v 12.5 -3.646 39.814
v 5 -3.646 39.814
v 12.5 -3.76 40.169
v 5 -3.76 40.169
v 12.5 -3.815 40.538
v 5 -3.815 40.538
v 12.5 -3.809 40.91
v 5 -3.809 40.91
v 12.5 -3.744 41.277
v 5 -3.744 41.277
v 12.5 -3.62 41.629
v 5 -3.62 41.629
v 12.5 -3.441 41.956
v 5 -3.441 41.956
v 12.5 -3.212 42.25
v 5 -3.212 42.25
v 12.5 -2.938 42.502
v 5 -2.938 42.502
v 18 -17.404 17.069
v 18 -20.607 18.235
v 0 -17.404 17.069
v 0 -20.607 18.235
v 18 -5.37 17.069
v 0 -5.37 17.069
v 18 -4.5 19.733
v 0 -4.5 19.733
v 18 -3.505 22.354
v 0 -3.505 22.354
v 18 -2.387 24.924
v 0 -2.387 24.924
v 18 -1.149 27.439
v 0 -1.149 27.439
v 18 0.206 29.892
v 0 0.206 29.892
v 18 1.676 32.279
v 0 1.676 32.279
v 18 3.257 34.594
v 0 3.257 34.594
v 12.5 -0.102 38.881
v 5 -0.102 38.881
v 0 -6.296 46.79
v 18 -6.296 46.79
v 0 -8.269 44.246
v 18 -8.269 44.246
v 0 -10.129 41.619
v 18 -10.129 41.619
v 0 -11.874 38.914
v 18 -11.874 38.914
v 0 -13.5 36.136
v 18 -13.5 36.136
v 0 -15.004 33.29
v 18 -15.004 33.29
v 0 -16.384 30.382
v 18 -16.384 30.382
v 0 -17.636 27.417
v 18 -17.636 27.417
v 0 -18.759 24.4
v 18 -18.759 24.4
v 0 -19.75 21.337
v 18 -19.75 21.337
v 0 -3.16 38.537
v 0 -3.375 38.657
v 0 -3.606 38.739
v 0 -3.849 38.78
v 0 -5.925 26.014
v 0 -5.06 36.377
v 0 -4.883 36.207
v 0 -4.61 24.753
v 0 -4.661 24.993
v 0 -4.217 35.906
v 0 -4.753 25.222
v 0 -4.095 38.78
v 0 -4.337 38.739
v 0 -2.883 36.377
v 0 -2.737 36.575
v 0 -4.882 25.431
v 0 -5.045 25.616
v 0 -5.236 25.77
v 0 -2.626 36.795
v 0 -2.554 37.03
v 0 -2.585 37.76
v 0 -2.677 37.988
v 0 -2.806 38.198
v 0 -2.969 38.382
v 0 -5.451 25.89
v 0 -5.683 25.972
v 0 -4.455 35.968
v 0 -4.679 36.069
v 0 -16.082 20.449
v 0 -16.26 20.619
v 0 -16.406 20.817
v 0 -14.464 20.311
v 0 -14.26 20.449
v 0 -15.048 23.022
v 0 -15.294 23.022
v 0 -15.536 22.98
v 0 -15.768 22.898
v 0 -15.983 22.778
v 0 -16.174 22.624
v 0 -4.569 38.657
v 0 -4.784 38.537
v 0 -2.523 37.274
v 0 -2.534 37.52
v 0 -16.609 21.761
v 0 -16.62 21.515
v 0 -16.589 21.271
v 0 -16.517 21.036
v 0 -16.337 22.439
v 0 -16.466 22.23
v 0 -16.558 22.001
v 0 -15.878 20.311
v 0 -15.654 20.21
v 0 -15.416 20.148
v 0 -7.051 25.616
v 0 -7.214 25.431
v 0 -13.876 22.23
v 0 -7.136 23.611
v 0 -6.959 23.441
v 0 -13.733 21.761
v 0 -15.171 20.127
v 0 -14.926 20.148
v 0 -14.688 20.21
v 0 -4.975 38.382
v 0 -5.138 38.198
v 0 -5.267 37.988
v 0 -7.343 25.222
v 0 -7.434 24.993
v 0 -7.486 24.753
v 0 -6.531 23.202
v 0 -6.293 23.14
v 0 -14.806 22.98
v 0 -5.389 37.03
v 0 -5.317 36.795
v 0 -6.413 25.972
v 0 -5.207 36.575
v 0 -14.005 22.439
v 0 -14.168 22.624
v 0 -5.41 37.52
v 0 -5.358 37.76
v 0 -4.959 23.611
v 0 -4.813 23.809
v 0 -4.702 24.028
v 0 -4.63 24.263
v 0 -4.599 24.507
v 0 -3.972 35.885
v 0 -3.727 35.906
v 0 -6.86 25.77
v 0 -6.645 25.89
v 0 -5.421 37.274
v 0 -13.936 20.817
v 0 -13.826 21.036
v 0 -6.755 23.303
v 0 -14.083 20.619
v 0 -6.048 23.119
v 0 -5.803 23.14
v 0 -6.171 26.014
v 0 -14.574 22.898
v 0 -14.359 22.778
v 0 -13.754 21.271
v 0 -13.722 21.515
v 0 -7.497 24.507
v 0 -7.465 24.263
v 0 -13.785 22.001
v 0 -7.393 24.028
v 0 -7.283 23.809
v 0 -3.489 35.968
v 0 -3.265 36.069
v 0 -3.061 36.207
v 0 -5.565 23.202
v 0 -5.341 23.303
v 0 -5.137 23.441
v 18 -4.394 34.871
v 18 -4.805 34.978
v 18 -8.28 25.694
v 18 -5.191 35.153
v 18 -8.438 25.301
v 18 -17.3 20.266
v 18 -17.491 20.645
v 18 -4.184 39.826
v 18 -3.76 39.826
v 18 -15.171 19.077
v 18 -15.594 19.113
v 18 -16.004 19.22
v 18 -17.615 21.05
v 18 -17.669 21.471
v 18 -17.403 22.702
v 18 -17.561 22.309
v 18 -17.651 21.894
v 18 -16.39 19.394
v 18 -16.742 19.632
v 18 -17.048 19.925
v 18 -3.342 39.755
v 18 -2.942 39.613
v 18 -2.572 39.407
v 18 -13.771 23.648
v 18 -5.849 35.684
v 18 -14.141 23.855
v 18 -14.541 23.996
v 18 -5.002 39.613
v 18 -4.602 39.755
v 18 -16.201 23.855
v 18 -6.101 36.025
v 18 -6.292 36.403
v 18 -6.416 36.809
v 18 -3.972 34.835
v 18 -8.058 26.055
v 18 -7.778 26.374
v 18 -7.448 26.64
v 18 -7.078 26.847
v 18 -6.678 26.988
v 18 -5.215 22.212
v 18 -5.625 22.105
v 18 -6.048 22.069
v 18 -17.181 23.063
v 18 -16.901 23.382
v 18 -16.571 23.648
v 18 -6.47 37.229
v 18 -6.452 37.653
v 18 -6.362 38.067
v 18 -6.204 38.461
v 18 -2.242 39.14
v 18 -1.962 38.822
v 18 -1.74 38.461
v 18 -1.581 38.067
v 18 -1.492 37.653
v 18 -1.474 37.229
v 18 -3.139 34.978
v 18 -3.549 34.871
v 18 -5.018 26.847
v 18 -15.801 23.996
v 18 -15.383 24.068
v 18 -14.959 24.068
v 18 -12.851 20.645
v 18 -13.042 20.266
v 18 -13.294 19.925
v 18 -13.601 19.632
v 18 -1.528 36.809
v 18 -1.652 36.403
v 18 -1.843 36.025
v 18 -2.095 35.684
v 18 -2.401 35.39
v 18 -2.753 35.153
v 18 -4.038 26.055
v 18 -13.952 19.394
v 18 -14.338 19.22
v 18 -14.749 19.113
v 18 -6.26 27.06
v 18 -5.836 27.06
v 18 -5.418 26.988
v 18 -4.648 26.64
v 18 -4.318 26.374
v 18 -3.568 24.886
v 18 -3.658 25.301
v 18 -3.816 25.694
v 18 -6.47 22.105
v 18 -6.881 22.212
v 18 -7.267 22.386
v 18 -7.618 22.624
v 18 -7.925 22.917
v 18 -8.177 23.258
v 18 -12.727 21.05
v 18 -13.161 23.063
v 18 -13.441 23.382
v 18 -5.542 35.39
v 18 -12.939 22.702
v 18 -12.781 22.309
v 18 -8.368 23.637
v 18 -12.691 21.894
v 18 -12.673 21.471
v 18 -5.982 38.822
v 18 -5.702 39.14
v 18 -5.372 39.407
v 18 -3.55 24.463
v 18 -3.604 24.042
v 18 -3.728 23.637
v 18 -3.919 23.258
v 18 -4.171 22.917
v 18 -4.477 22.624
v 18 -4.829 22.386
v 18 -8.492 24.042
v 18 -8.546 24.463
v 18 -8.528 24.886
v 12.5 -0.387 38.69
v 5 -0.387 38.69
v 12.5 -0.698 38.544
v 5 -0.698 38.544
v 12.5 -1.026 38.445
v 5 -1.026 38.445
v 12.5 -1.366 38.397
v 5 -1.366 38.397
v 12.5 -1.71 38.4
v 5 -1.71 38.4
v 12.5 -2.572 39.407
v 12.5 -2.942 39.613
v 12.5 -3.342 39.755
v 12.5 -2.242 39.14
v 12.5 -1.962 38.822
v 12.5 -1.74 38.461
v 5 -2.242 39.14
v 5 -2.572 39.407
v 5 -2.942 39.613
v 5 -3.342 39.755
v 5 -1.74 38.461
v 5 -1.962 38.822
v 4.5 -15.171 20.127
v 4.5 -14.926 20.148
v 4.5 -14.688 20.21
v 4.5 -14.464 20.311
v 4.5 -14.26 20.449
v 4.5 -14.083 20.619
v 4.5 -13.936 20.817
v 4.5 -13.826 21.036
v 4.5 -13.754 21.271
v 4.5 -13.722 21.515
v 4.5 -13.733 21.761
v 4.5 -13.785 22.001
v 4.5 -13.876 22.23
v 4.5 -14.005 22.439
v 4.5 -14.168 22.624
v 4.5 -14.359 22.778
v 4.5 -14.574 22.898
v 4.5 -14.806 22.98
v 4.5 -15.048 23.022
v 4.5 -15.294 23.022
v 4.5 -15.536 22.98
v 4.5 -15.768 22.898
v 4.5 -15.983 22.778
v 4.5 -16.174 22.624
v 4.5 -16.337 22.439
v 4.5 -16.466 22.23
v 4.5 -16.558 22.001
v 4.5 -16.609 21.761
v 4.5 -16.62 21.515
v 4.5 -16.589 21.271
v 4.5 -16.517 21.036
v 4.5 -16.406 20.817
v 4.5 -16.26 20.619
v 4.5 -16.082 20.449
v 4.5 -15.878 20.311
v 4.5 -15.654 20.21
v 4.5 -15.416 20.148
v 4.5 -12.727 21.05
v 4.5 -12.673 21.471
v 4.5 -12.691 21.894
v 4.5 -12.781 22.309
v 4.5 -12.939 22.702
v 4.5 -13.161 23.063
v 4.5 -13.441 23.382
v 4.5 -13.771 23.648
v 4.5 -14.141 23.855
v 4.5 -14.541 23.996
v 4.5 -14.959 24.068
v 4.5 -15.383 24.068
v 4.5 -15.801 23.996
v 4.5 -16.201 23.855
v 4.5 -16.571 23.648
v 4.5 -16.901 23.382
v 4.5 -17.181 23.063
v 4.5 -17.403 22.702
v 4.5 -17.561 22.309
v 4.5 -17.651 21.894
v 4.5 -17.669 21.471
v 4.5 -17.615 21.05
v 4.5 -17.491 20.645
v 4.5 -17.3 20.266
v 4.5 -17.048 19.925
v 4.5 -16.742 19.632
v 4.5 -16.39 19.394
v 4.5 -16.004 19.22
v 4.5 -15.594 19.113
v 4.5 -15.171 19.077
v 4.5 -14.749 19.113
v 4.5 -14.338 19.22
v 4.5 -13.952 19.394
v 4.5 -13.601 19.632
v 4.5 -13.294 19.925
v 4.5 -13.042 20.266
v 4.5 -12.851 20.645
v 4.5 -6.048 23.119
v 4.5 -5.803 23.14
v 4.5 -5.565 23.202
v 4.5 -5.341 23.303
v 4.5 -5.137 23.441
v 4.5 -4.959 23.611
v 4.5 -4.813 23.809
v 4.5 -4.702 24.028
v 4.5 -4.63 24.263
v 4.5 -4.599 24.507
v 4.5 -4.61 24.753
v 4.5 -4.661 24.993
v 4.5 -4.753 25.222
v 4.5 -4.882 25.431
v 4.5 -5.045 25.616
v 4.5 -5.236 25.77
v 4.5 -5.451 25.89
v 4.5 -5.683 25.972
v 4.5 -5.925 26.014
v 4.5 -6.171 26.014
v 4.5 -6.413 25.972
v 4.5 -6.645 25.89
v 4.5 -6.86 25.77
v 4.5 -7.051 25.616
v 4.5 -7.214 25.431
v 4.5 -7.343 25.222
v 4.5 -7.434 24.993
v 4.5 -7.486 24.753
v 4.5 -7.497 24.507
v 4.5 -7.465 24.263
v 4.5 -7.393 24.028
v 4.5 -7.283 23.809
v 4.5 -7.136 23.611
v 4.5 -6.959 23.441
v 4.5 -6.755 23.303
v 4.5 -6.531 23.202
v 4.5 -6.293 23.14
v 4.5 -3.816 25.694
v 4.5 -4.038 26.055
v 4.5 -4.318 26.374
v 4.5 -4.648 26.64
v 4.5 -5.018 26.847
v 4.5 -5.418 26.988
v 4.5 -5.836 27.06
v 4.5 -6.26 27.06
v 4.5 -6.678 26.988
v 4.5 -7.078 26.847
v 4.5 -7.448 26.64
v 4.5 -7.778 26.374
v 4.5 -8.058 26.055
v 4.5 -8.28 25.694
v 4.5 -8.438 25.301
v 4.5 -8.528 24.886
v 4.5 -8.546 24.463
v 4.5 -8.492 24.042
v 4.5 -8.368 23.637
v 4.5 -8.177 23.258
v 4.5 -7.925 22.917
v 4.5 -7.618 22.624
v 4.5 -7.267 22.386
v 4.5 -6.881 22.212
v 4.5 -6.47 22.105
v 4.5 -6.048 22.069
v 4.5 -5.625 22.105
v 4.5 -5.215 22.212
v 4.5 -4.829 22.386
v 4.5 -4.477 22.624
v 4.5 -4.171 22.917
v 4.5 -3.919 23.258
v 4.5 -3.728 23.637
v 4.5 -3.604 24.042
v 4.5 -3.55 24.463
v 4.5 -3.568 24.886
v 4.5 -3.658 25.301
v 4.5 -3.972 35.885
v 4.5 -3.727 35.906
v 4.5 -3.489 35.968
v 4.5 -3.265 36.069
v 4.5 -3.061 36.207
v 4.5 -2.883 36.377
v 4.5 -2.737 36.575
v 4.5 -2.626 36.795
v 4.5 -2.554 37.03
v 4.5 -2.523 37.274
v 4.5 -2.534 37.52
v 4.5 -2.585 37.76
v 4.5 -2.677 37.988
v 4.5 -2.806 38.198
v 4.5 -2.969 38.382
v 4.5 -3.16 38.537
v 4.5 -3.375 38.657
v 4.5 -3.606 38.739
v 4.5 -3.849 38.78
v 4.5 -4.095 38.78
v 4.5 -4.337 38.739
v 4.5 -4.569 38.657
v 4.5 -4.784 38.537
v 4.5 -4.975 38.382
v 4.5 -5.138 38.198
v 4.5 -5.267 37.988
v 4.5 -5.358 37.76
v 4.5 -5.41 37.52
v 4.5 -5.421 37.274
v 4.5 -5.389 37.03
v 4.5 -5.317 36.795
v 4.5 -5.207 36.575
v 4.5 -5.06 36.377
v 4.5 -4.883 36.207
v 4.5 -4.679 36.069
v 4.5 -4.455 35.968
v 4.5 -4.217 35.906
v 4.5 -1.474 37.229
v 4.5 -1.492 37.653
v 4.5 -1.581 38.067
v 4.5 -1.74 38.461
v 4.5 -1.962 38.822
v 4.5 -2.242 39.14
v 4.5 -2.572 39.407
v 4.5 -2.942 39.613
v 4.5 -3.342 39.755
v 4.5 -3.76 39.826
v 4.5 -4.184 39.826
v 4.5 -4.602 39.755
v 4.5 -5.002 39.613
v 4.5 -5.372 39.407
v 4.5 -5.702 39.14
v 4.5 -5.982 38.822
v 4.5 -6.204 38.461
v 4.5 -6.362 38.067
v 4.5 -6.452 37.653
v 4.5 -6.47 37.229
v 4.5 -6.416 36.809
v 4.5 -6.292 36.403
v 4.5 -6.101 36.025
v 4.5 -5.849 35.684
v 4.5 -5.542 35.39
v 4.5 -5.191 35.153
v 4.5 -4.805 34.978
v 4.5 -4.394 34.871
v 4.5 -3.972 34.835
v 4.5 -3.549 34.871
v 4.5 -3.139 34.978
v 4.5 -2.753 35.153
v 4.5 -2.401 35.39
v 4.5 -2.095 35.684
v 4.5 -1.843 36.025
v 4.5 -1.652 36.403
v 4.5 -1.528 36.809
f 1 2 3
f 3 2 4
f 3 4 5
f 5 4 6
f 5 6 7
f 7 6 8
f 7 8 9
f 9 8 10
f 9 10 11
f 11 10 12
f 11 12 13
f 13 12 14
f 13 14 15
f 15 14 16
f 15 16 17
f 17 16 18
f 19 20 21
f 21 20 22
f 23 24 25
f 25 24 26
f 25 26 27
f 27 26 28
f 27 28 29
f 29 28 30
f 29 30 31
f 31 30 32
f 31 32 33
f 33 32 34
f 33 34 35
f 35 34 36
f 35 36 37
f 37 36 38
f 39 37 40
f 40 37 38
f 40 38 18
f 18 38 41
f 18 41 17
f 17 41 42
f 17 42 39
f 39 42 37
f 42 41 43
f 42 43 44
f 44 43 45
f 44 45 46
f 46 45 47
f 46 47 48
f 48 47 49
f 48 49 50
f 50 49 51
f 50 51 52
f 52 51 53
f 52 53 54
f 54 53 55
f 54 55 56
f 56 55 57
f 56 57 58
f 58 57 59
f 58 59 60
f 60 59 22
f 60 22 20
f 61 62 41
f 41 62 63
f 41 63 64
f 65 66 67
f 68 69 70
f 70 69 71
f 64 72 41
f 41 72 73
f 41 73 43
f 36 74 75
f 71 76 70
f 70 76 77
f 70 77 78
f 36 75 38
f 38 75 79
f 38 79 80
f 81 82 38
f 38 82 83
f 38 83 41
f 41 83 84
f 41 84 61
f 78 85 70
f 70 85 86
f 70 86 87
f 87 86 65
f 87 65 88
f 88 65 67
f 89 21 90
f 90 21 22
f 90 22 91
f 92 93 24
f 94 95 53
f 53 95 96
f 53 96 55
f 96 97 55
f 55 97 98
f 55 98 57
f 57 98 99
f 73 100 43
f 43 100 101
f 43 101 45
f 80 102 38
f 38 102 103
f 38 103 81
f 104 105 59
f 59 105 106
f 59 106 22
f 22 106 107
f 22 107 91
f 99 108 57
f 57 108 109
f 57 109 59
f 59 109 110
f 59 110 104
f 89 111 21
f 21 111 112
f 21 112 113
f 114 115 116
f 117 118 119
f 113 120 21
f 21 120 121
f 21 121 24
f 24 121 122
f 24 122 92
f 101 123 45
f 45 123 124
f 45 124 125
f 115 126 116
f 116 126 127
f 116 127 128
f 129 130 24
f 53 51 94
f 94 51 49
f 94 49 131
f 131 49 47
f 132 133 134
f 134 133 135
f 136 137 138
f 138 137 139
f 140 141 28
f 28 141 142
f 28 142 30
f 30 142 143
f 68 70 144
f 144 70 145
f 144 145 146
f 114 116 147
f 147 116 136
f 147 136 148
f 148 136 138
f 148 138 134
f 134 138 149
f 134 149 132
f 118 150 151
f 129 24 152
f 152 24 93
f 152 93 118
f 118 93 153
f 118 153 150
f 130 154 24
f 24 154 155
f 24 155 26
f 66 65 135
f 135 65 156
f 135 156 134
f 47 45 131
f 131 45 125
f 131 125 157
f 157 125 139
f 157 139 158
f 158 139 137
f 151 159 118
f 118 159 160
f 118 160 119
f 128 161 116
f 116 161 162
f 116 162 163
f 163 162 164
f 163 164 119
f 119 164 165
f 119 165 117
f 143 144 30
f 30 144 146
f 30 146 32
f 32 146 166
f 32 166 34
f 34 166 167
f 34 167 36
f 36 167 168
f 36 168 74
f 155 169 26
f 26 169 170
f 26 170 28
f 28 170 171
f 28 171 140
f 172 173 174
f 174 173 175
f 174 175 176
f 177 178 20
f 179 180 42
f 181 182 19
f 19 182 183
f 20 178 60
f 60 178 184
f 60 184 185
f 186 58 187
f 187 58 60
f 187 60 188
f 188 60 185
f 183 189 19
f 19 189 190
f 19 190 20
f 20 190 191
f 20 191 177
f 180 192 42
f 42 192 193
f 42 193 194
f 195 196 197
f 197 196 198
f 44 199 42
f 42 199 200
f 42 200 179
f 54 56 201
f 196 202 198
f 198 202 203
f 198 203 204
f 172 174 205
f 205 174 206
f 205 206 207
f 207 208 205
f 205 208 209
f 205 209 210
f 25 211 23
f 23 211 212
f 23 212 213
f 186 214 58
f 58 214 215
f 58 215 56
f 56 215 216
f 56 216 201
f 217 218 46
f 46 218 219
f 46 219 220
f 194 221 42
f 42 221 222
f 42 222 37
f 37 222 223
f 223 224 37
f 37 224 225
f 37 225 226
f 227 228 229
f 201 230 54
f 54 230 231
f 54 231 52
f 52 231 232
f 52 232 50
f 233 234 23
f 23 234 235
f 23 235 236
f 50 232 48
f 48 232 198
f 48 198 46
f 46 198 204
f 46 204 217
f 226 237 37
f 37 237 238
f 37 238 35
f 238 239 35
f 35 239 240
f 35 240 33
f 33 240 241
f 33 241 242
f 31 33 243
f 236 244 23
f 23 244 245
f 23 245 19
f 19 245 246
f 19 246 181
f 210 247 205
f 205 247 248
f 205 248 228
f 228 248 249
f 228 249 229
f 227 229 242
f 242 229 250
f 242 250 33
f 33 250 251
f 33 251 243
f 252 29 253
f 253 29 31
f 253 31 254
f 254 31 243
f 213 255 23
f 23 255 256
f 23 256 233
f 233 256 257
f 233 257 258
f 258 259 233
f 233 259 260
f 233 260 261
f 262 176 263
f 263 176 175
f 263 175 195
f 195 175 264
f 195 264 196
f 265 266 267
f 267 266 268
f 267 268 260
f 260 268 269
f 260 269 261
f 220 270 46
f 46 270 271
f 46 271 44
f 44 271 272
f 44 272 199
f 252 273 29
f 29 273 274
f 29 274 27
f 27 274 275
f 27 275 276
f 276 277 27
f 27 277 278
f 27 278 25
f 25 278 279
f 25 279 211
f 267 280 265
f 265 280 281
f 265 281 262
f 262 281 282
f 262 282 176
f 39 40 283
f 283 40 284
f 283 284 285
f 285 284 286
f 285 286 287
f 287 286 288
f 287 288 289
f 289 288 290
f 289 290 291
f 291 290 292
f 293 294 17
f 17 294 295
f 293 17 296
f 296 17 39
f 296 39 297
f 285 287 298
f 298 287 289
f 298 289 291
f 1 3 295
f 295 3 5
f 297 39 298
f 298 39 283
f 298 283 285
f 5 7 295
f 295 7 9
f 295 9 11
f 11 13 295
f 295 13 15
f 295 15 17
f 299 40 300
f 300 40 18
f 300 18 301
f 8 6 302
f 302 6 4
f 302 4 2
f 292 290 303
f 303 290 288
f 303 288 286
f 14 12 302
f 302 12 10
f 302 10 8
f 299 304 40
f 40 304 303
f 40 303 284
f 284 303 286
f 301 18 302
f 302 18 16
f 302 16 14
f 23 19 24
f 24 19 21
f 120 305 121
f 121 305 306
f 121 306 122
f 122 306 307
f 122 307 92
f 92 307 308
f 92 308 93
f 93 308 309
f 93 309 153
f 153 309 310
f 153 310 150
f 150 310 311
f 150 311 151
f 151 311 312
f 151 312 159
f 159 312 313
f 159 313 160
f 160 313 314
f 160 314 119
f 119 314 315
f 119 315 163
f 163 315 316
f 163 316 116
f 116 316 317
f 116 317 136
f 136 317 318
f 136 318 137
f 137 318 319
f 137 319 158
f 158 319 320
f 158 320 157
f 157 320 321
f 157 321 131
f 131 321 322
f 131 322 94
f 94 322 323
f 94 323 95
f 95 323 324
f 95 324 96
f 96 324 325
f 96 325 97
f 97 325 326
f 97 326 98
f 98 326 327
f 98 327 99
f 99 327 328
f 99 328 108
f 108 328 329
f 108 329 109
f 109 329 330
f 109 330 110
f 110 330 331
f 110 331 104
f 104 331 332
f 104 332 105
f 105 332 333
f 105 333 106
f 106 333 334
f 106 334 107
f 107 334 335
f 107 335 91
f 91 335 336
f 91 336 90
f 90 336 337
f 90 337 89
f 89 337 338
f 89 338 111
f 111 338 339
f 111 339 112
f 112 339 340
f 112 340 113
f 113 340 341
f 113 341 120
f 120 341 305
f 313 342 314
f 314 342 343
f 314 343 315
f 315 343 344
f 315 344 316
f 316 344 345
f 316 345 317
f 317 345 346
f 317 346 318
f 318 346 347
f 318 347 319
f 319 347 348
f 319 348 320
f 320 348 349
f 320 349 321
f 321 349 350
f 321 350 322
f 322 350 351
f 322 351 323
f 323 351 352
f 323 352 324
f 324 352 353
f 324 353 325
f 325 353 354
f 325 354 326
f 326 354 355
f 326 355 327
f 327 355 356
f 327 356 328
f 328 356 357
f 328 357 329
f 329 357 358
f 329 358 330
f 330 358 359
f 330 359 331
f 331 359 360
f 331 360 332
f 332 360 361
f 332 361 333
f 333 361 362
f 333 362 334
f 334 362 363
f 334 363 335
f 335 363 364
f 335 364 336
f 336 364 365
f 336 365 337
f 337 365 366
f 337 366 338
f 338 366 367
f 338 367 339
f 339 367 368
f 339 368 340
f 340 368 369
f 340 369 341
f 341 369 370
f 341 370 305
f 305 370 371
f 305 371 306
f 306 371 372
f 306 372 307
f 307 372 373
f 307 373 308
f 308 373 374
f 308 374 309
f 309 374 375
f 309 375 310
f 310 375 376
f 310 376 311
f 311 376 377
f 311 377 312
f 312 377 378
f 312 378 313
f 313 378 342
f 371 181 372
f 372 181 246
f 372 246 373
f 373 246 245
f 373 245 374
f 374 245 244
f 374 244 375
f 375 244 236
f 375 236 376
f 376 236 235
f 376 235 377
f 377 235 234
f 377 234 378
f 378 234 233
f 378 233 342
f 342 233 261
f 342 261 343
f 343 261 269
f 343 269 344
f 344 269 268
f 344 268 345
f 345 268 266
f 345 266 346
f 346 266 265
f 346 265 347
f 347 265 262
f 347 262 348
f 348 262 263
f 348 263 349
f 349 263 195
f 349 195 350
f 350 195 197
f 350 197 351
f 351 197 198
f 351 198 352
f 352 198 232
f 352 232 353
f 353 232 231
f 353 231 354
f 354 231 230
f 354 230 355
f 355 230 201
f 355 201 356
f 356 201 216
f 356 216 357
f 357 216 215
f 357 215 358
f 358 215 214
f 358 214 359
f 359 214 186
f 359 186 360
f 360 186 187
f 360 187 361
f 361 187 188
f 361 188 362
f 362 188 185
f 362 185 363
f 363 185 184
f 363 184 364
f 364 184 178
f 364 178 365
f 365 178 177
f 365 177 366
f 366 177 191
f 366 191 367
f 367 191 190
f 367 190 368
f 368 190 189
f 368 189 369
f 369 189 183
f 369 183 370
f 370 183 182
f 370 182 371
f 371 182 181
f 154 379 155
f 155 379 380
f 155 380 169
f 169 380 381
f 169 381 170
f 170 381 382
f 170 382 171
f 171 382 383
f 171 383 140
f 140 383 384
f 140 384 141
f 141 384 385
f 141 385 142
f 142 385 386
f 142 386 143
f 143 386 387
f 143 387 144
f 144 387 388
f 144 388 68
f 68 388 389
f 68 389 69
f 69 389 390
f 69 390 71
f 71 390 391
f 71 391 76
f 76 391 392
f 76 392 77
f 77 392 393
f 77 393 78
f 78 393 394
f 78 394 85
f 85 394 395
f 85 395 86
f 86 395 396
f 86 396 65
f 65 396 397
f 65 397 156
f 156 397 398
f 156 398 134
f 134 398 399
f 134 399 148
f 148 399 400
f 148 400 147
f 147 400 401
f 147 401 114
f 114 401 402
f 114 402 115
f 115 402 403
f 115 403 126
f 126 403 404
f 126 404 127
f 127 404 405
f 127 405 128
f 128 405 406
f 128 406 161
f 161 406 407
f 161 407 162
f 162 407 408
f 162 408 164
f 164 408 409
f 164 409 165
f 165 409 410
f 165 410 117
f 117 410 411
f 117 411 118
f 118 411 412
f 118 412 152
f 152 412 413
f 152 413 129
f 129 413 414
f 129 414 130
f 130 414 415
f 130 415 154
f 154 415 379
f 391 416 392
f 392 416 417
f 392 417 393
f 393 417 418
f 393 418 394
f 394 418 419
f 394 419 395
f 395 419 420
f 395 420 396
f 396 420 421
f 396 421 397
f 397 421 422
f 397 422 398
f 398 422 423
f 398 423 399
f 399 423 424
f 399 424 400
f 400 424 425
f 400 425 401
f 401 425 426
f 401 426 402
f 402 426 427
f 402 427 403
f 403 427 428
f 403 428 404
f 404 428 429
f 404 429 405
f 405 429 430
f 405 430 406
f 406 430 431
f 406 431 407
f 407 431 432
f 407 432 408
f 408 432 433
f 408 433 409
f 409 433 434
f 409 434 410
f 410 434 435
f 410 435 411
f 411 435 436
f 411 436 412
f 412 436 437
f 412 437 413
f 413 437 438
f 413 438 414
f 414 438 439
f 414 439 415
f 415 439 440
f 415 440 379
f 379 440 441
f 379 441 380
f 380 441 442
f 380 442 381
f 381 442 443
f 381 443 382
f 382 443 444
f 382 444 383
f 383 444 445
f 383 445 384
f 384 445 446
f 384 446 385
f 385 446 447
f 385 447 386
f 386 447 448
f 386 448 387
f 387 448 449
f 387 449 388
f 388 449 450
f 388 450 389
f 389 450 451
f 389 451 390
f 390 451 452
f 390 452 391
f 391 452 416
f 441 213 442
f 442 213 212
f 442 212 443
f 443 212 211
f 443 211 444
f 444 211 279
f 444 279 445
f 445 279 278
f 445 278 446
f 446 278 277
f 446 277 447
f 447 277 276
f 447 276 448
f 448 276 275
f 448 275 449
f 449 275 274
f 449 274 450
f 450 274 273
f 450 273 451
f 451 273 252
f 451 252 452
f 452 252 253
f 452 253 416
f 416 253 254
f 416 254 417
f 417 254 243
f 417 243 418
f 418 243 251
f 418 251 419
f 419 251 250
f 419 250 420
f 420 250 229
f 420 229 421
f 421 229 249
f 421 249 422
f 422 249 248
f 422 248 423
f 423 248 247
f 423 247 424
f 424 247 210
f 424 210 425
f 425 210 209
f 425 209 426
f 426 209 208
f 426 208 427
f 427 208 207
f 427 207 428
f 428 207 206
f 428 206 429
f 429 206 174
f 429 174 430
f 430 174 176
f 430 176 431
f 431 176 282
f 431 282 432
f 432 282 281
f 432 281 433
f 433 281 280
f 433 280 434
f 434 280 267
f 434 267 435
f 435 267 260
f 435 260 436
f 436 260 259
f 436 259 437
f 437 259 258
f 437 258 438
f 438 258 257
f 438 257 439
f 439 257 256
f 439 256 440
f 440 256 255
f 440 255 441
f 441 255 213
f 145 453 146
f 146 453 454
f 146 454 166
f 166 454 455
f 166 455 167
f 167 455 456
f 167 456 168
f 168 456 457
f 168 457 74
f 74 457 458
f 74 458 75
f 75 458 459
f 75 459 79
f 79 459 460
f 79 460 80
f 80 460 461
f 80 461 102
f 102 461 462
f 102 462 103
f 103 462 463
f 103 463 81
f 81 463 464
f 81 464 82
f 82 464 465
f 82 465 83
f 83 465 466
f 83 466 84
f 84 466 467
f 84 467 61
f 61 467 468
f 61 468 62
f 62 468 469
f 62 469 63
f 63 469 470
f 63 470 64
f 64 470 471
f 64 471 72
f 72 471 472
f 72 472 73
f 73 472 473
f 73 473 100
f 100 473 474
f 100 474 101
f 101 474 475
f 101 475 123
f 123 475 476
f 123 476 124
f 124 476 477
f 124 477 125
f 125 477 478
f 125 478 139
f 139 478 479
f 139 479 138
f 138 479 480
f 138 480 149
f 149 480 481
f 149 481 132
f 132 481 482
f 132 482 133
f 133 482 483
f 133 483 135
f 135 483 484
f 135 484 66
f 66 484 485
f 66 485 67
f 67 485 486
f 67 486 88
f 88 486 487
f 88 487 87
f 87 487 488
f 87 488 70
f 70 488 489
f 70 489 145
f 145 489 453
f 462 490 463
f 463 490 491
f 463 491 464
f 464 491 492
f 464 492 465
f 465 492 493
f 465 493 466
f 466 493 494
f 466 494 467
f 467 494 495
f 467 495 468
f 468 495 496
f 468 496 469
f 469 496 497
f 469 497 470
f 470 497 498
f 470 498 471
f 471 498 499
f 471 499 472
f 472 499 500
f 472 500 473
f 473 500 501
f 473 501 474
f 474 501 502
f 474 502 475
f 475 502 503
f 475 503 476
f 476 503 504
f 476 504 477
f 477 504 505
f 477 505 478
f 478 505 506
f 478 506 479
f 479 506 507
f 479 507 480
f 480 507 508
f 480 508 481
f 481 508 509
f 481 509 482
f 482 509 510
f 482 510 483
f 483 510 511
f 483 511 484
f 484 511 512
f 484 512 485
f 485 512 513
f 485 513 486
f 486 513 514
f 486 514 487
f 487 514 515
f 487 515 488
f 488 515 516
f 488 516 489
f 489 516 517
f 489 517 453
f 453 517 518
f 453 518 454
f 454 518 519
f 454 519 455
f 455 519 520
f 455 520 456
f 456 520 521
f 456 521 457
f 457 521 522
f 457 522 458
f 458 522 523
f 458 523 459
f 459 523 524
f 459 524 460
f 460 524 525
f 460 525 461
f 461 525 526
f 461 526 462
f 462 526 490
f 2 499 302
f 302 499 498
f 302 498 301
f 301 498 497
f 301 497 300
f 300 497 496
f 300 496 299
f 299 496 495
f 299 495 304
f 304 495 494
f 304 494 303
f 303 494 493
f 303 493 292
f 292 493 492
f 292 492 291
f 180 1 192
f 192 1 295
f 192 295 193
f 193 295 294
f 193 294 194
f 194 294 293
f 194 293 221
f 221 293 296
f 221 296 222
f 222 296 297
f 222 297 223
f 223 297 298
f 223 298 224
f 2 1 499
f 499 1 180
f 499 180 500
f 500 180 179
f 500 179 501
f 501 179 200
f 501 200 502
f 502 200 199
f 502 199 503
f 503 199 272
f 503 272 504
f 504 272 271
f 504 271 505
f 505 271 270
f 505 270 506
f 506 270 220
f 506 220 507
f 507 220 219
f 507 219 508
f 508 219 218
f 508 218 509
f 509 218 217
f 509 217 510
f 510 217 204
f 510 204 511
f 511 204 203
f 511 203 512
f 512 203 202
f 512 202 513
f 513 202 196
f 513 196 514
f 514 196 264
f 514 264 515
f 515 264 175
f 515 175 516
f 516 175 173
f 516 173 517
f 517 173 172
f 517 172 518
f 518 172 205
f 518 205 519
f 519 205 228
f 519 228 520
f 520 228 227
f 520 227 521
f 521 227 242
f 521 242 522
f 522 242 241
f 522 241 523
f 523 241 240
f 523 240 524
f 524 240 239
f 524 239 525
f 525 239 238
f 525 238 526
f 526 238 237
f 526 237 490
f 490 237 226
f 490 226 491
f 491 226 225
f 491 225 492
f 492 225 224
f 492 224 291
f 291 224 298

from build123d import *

# Parameters (mm, degrees)
BOSS_EXTRUDE1_DEPTH              = 5
BOSS_EXTRUDE2_DEPTH              = 13
CUT_EXTRUDE1_START               = -13
SKETCH3_R                        = 2.3
CUT_EXTRUDE1_DEPTH               = 7.5
CUT_EXTRUDE2_DEPTH               = 57.683541142
CUT_EXTRUDE2_DEPTH_BACK          = 57.683541142
CBORE_FOR_M2_5_SHCS1_D           = 2.9
CBORE_FOR_M2_5_SHCS1_CBORE_D     = 5
CBORE_FOR_M2_5_SHCS1_CBORE_DEPTH = 13.5


with BuildPart() as part:
    # Sketch1 → Boss-Extrude1 (new body)
    with BuildSketch(Plane(origin=(0, 0, 0), x_dir=(0, 0, -1), z_dir=(1, 0, 0))):
        with BuildLine():
            Line((-34.593659354, 3.256520294), (-46.7897518, -6.296129983))
            ThreePointArc((-46.7897518, -6.296129983), (-33.290290023, -15.004245976), (-18.234604608, -20.60719958))
            Line((-18.234604608, -20.60719958), (-2.973495544, 21.32235297))
            Line((-2.973495544, 21.32235297), (-17.068884855, 26.45265512))
            Line((-17.068884855, 26.45265512), (-27.166620772, -1.290646299))
            ThreePointArc((-27.166620772, -1.290646299), (-30.963724442, 0.846415848), (-34.593659354, 3.256520294))
        make_face()
    extrude(amount=BOSS_EXTRUDE1_DEPTH)

    # Sketch2 → Boss-Extrude2 (add)
    with BuildSketch(Plane(origin=(5, 0, 0), x_dir=(0, 0, -1), z_dir=(1, 0, 0))):
        with BuildLine():
            Line((-34.593659354, 3.256520294), (-46.7897518, -6.296129983))
            ThreePointArc((-46.7897518, -6.296129983), (-42.613802597, -9.444548196), (-38.226724688, -12.291412509))
            Line((-38.226724688, -12.291412509), (-25.335917908, -2.194623762))
            ThreePointArc((-25.335917908, -2.194623762), (-26.255160174, -1.750514609), (-27.166620772, -1.290646299))
            ThreePointArc((-27.166620772, -1.290646299), (-30.963724442, 0.846415848), (-34.593659354, 3.256520294))
        make_face()
        with BuildLine():
            Line((-25.335917908, -2.194623762), (-38.226724688, -12.291412509))
            ThreePointArc((-38.226724688, -12.291412509), (-28.535215176, -17.181480963), (-18.234604608, -20.60719958))
            Line((-18.234604608, -20.60719958), (-12.16072752, -3.919359432))
            Line((-12.16072752, -3.919359432), (-2.973495544, 21.32235297))
            Line((-2.973495544, 21.32235297), (-17.068884855, 26.45265512))
            Line((-17.068884855, 26.45265512), (-26.256116832, 1.210942718))
            Line((-26.256116832, 1.210942718), (-27.166620772, -1.290646299))
            ThreePointArc((-27.166620772, -1.290646299), (-26.255160174, -1.750514609), (-25.335917908, -2.194623762))
        make_face()
    extrude(amount=BOSS_EXTRUDE2_DEPTH)

    # Sketch3 → Cut-Extrude1 (cut)
    with BuildSketch(Plane(origin=(18, 0, 0), x_dir=(0, 0, -1), z_dir=(1, 0, 0)).offset(CUT_EXTRUDE1_START)):
        with Locations((-40.691705577, -1.519804845)):
            Circle(SKETCH3_R)
    extrude(amount=CUT_EXTRUDE1_DEPTH, mode=Mode.SUBTRACT)

    # Sketch8 → Cut-Extrude2 (cut, two sides: drawn at the far end of the back side and taken through both)
    with BuildSketch(Plane.ZY.offset(-CUT_EXTRUDE2_DEPTH_BACK)):
        with BuildLine():
            Line((27.166620772, -1.290646299), (17.068884855, 26.45265512))
            Line((17.068884855, 26.45265512), (2.973495544, 21.32235297))
            Line((2.973495544, 21.32235297), (17.068884855, -17.404410883))
            Line((17.068884855, -17.404410883), (17.068884855, -5.36984615))
            ThreePointArc((17.068884855, -5.36984615), (22.211595111, -3.562545394), (27.166620772, -1.290646299))
        make_face()
    extrude(amount=CUT_EXTRUDE2_DEPTH + CUT_EXTRUDE2_DEPTH_BACK, mode=Mode.SUBTRACT)

    # CBORE for M2.5 SHCS1 (through all)
    with Locations(Plane(origin=(18, 0, 0), x_dir=(0, 0, -1), z_dir=(1, 0, 0))):
        with Locations((-37.335347169, -3.97184687), (-24.568884855, -6.047927384), (-21.576904852, -15.17107203)):
            CounterBoreHole(CBORE_FOR_M2_5_SHCS1_D / 2, CBORE_FOR_M2_5_SHCS1_CBORE_D / 2, CBORE_FOR_M2_5_SHCS1_CBORE_DEPTH)


solid = part.part
